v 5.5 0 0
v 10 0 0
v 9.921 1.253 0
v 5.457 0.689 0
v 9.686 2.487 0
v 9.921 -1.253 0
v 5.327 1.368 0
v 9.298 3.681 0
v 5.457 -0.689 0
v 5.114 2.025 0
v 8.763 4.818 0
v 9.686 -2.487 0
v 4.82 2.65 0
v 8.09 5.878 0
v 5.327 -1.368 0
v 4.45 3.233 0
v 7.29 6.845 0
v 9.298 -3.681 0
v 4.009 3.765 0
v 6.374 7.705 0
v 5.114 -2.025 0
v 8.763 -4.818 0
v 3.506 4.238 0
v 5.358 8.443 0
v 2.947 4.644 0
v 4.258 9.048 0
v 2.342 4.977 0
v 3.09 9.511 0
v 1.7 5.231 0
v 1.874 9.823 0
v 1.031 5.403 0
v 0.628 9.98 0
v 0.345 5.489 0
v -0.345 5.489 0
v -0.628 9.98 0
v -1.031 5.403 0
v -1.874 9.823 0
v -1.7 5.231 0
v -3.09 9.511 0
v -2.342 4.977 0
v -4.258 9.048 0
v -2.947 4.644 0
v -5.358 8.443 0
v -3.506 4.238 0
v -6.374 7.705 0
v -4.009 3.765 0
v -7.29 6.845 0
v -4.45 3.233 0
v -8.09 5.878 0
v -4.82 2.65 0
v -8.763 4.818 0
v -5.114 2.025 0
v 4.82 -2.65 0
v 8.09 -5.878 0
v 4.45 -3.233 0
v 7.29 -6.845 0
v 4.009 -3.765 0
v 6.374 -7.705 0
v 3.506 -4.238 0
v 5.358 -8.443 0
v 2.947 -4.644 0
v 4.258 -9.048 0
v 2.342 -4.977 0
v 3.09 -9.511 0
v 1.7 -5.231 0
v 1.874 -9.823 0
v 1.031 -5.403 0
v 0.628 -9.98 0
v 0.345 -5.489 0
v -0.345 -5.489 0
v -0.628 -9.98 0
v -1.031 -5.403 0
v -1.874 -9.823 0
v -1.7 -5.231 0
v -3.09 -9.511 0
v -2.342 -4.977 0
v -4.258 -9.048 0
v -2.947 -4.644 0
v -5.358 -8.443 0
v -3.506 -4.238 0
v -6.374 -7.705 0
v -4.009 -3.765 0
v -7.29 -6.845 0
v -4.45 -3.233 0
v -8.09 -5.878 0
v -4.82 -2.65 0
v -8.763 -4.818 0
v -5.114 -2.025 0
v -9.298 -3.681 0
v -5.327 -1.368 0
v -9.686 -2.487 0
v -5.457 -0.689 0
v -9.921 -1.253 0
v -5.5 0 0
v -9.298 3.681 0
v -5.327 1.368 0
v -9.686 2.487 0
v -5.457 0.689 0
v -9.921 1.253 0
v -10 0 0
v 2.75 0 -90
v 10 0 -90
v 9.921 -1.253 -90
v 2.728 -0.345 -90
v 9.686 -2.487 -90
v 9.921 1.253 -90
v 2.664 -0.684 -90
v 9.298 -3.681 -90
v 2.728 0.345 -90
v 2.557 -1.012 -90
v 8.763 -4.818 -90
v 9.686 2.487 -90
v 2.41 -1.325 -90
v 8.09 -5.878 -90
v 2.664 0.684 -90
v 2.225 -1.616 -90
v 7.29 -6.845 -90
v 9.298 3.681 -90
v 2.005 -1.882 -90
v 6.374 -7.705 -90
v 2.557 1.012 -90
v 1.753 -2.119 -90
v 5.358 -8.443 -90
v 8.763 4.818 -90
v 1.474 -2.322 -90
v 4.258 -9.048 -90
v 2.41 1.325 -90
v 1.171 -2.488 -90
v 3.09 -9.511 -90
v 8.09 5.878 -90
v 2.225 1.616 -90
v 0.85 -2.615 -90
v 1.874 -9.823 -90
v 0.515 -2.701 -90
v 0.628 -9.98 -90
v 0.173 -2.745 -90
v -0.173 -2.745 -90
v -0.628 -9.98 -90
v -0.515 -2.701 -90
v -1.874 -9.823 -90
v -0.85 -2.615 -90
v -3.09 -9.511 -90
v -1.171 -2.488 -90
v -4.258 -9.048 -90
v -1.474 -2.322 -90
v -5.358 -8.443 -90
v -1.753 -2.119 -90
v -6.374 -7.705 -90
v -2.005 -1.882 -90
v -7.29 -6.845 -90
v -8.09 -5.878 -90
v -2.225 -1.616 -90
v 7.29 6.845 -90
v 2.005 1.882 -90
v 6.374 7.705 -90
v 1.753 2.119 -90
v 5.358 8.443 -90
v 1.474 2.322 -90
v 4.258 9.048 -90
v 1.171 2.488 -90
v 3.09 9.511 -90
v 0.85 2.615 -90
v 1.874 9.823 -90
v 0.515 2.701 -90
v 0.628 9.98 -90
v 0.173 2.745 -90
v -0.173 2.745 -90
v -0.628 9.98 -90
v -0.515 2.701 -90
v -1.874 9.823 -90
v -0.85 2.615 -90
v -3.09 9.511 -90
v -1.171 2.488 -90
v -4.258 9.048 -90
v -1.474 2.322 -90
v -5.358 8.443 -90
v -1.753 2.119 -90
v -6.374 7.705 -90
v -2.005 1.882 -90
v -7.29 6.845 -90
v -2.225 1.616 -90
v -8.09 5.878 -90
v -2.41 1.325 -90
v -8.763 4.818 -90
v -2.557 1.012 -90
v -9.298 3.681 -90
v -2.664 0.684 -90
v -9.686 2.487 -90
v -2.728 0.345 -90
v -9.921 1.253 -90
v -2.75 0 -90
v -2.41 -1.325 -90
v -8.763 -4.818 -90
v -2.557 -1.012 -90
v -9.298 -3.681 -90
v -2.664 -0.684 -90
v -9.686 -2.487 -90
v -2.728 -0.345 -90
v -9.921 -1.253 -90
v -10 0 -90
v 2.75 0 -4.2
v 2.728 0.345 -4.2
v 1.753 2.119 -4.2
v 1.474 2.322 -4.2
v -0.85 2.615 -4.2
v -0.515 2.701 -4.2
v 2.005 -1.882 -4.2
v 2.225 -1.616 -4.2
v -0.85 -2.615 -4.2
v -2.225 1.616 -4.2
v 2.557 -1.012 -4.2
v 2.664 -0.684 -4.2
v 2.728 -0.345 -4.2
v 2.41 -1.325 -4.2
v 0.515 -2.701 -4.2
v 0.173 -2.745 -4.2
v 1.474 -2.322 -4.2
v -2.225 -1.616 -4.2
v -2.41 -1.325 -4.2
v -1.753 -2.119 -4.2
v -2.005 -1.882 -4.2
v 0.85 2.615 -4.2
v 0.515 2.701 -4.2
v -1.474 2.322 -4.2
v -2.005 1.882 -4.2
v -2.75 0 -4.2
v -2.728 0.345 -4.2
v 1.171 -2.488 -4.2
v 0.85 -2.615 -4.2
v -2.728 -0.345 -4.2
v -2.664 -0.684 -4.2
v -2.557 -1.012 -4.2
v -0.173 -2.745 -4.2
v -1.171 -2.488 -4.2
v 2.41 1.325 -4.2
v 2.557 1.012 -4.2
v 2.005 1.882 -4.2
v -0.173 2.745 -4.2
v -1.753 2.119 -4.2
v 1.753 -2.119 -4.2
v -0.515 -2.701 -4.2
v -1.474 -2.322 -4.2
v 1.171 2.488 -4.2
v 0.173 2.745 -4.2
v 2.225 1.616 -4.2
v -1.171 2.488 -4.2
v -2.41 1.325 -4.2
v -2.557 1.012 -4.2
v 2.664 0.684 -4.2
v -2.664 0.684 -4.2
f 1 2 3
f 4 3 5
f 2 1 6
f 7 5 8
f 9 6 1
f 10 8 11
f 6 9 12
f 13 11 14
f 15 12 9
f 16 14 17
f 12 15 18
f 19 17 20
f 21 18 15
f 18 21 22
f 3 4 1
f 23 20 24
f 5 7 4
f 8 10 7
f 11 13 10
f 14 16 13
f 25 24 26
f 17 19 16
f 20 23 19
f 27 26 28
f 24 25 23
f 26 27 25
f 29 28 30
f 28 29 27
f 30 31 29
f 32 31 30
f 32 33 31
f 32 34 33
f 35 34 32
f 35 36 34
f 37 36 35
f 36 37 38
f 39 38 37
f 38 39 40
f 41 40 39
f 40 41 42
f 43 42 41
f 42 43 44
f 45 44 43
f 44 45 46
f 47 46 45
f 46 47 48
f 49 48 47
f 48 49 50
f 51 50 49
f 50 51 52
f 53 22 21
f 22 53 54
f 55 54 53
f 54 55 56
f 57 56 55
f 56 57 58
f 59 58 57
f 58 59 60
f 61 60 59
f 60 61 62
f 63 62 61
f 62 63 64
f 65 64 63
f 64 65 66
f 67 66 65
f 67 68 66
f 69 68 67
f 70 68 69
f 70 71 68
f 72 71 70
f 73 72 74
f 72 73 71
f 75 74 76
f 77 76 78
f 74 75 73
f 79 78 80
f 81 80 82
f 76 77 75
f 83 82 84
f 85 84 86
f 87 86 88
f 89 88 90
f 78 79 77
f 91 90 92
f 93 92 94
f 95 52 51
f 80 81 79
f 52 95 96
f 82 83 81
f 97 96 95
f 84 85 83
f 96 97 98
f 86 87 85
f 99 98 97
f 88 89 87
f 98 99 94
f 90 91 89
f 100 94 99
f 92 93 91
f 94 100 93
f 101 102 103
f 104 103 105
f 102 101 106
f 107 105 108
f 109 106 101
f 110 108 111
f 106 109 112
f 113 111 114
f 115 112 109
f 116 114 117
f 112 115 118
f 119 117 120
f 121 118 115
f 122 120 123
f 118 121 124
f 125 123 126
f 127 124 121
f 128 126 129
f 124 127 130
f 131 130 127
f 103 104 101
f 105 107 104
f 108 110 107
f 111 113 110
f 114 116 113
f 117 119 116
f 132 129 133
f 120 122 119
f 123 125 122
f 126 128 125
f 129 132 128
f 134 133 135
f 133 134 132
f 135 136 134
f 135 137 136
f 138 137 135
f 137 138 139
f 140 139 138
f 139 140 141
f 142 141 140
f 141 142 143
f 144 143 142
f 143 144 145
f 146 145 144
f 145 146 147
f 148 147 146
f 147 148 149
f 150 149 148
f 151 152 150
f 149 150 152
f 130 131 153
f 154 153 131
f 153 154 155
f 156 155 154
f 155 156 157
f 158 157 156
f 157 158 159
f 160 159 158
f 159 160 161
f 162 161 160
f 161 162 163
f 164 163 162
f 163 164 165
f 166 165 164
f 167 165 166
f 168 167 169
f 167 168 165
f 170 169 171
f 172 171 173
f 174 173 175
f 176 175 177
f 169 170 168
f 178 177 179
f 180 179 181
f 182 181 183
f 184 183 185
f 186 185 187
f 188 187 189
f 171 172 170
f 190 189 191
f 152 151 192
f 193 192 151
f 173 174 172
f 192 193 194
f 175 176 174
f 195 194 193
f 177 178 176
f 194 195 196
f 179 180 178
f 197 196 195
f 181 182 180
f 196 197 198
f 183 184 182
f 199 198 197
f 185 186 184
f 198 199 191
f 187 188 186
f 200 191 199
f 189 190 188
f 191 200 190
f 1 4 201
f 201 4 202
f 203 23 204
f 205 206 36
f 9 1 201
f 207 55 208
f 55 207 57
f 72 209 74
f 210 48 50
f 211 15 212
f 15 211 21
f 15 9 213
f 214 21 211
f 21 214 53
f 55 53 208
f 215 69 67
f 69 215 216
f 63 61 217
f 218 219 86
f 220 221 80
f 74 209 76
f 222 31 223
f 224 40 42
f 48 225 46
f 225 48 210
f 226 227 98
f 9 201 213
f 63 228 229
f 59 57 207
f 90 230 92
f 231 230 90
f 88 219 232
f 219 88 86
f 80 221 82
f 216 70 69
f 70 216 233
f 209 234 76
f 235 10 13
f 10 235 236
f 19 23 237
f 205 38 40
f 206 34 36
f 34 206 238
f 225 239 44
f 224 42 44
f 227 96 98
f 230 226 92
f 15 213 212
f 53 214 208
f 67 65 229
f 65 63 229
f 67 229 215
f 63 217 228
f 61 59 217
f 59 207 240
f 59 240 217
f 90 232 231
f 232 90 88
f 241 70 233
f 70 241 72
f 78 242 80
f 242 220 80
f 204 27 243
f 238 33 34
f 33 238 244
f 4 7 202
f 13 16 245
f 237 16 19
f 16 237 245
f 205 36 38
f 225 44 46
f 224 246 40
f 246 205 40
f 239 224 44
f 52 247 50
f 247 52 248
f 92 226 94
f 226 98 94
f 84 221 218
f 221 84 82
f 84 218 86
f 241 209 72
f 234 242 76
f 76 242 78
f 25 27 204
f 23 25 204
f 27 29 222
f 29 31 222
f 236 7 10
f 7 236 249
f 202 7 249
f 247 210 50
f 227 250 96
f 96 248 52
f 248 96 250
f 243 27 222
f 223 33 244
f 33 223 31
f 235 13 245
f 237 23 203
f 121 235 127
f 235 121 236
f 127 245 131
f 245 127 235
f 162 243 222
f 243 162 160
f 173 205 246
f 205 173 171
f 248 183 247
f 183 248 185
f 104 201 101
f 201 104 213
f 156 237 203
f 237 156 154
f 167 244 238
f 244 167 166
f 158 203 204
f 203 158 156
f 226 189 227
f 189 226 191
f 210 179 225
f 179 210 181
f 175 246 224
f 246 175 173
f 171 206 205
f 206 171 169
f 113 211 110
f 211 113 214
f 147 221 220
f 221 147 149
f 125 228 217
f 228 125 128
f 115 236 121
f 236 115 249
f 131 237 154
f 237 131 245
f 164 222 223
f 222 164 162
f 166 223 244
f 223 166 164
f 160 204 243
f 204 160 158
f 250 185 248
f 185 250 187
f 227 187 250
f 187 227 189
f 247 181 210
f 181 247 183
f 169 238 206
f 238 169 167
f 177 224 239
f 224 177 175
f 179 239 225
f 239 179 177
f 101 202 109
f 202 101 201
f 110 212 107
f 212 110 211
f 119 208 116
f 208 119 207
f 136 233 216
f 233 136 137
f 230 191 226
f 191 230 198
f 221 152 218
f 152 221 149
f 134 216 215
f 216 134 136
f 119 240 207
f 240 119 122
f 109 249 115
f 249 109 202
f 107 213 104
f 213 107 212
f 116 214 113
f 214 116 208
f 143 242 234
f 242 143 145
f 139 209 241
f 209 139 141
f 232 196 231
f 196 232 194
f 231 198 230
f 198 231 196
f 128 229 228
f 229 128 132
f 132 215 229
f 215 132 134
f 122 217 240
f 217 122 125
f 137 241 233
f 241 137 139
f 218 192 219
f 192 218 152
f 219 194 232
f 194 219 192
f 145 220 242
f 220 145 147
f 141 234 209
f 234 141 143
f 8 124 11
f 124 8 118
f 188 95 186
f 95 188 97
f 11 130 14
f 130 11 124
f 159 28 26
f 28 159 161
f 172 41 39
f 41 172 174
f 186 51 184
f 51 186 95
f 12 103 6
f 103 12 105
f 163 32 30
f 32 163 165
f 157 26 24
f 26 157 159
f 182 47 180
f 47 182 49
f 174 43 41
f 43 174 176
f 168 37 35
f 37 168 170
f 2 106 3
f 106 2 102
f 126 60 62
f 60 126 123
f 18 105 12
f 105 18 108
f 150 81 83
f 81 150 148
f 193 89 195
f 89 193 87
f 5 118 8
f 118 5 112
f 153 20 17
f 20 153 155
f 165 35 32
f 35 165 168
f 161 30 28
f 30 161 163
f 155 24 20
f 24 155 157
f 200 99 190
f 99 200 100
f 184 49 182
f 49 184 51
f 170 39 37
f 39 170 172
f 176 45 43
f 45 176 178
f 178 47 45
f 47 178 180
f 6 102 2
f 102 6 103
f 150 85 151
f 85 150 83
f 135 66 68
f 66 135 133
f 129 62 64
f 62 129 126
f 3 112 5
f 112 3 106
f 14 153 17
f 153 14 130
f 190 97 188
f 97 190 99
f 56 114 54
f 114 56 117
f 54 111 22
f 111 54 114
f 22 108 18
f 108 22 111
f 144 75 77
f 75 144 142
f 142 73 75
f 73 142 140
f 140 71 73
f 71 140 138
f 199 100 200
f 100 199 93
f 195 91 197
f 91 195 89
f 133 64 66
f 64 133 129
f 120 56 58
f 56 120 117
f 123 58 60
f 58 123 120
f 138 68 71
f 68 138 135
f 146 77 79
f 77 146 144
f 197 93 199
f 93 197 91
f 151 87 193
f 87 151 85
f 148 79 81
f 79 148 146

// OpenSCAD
$fn = 50;


difference() {
	union() {
		translate(v = [0, 0, -90.0000000000]) {
			cylinder(h = 90, r = 10.0000000000);
		}
		cylinder(h = 0, r = 19.0000000000);
	}
	union() {
		translate(v = [0, 0, 0]) {
			rotate(a = [0, 0, 0]) {
				difference() {
					union() {
						#translate(v = [0, 0, -90.0000000000]) {
							cylinder(h = 90, r = 2.2500000000);
						}
						#translate(v = [0, 0, -4.2000000000]) {
							cylinder(h = 4.2000000000, r1 = 2.7500000000, r2 = 5.5000000000);
						}
						#translate(v = [0, 0, -90.0000000000]) {
							cylinder(h = 90, r = 2.7500000000);
						}
						#translate(v = [0, 0, -90.0000000000]) {
							cylinder(h = 90, r = 2.2500000000);
						}
					}
					union();
				}
			}
		}
	}
}
